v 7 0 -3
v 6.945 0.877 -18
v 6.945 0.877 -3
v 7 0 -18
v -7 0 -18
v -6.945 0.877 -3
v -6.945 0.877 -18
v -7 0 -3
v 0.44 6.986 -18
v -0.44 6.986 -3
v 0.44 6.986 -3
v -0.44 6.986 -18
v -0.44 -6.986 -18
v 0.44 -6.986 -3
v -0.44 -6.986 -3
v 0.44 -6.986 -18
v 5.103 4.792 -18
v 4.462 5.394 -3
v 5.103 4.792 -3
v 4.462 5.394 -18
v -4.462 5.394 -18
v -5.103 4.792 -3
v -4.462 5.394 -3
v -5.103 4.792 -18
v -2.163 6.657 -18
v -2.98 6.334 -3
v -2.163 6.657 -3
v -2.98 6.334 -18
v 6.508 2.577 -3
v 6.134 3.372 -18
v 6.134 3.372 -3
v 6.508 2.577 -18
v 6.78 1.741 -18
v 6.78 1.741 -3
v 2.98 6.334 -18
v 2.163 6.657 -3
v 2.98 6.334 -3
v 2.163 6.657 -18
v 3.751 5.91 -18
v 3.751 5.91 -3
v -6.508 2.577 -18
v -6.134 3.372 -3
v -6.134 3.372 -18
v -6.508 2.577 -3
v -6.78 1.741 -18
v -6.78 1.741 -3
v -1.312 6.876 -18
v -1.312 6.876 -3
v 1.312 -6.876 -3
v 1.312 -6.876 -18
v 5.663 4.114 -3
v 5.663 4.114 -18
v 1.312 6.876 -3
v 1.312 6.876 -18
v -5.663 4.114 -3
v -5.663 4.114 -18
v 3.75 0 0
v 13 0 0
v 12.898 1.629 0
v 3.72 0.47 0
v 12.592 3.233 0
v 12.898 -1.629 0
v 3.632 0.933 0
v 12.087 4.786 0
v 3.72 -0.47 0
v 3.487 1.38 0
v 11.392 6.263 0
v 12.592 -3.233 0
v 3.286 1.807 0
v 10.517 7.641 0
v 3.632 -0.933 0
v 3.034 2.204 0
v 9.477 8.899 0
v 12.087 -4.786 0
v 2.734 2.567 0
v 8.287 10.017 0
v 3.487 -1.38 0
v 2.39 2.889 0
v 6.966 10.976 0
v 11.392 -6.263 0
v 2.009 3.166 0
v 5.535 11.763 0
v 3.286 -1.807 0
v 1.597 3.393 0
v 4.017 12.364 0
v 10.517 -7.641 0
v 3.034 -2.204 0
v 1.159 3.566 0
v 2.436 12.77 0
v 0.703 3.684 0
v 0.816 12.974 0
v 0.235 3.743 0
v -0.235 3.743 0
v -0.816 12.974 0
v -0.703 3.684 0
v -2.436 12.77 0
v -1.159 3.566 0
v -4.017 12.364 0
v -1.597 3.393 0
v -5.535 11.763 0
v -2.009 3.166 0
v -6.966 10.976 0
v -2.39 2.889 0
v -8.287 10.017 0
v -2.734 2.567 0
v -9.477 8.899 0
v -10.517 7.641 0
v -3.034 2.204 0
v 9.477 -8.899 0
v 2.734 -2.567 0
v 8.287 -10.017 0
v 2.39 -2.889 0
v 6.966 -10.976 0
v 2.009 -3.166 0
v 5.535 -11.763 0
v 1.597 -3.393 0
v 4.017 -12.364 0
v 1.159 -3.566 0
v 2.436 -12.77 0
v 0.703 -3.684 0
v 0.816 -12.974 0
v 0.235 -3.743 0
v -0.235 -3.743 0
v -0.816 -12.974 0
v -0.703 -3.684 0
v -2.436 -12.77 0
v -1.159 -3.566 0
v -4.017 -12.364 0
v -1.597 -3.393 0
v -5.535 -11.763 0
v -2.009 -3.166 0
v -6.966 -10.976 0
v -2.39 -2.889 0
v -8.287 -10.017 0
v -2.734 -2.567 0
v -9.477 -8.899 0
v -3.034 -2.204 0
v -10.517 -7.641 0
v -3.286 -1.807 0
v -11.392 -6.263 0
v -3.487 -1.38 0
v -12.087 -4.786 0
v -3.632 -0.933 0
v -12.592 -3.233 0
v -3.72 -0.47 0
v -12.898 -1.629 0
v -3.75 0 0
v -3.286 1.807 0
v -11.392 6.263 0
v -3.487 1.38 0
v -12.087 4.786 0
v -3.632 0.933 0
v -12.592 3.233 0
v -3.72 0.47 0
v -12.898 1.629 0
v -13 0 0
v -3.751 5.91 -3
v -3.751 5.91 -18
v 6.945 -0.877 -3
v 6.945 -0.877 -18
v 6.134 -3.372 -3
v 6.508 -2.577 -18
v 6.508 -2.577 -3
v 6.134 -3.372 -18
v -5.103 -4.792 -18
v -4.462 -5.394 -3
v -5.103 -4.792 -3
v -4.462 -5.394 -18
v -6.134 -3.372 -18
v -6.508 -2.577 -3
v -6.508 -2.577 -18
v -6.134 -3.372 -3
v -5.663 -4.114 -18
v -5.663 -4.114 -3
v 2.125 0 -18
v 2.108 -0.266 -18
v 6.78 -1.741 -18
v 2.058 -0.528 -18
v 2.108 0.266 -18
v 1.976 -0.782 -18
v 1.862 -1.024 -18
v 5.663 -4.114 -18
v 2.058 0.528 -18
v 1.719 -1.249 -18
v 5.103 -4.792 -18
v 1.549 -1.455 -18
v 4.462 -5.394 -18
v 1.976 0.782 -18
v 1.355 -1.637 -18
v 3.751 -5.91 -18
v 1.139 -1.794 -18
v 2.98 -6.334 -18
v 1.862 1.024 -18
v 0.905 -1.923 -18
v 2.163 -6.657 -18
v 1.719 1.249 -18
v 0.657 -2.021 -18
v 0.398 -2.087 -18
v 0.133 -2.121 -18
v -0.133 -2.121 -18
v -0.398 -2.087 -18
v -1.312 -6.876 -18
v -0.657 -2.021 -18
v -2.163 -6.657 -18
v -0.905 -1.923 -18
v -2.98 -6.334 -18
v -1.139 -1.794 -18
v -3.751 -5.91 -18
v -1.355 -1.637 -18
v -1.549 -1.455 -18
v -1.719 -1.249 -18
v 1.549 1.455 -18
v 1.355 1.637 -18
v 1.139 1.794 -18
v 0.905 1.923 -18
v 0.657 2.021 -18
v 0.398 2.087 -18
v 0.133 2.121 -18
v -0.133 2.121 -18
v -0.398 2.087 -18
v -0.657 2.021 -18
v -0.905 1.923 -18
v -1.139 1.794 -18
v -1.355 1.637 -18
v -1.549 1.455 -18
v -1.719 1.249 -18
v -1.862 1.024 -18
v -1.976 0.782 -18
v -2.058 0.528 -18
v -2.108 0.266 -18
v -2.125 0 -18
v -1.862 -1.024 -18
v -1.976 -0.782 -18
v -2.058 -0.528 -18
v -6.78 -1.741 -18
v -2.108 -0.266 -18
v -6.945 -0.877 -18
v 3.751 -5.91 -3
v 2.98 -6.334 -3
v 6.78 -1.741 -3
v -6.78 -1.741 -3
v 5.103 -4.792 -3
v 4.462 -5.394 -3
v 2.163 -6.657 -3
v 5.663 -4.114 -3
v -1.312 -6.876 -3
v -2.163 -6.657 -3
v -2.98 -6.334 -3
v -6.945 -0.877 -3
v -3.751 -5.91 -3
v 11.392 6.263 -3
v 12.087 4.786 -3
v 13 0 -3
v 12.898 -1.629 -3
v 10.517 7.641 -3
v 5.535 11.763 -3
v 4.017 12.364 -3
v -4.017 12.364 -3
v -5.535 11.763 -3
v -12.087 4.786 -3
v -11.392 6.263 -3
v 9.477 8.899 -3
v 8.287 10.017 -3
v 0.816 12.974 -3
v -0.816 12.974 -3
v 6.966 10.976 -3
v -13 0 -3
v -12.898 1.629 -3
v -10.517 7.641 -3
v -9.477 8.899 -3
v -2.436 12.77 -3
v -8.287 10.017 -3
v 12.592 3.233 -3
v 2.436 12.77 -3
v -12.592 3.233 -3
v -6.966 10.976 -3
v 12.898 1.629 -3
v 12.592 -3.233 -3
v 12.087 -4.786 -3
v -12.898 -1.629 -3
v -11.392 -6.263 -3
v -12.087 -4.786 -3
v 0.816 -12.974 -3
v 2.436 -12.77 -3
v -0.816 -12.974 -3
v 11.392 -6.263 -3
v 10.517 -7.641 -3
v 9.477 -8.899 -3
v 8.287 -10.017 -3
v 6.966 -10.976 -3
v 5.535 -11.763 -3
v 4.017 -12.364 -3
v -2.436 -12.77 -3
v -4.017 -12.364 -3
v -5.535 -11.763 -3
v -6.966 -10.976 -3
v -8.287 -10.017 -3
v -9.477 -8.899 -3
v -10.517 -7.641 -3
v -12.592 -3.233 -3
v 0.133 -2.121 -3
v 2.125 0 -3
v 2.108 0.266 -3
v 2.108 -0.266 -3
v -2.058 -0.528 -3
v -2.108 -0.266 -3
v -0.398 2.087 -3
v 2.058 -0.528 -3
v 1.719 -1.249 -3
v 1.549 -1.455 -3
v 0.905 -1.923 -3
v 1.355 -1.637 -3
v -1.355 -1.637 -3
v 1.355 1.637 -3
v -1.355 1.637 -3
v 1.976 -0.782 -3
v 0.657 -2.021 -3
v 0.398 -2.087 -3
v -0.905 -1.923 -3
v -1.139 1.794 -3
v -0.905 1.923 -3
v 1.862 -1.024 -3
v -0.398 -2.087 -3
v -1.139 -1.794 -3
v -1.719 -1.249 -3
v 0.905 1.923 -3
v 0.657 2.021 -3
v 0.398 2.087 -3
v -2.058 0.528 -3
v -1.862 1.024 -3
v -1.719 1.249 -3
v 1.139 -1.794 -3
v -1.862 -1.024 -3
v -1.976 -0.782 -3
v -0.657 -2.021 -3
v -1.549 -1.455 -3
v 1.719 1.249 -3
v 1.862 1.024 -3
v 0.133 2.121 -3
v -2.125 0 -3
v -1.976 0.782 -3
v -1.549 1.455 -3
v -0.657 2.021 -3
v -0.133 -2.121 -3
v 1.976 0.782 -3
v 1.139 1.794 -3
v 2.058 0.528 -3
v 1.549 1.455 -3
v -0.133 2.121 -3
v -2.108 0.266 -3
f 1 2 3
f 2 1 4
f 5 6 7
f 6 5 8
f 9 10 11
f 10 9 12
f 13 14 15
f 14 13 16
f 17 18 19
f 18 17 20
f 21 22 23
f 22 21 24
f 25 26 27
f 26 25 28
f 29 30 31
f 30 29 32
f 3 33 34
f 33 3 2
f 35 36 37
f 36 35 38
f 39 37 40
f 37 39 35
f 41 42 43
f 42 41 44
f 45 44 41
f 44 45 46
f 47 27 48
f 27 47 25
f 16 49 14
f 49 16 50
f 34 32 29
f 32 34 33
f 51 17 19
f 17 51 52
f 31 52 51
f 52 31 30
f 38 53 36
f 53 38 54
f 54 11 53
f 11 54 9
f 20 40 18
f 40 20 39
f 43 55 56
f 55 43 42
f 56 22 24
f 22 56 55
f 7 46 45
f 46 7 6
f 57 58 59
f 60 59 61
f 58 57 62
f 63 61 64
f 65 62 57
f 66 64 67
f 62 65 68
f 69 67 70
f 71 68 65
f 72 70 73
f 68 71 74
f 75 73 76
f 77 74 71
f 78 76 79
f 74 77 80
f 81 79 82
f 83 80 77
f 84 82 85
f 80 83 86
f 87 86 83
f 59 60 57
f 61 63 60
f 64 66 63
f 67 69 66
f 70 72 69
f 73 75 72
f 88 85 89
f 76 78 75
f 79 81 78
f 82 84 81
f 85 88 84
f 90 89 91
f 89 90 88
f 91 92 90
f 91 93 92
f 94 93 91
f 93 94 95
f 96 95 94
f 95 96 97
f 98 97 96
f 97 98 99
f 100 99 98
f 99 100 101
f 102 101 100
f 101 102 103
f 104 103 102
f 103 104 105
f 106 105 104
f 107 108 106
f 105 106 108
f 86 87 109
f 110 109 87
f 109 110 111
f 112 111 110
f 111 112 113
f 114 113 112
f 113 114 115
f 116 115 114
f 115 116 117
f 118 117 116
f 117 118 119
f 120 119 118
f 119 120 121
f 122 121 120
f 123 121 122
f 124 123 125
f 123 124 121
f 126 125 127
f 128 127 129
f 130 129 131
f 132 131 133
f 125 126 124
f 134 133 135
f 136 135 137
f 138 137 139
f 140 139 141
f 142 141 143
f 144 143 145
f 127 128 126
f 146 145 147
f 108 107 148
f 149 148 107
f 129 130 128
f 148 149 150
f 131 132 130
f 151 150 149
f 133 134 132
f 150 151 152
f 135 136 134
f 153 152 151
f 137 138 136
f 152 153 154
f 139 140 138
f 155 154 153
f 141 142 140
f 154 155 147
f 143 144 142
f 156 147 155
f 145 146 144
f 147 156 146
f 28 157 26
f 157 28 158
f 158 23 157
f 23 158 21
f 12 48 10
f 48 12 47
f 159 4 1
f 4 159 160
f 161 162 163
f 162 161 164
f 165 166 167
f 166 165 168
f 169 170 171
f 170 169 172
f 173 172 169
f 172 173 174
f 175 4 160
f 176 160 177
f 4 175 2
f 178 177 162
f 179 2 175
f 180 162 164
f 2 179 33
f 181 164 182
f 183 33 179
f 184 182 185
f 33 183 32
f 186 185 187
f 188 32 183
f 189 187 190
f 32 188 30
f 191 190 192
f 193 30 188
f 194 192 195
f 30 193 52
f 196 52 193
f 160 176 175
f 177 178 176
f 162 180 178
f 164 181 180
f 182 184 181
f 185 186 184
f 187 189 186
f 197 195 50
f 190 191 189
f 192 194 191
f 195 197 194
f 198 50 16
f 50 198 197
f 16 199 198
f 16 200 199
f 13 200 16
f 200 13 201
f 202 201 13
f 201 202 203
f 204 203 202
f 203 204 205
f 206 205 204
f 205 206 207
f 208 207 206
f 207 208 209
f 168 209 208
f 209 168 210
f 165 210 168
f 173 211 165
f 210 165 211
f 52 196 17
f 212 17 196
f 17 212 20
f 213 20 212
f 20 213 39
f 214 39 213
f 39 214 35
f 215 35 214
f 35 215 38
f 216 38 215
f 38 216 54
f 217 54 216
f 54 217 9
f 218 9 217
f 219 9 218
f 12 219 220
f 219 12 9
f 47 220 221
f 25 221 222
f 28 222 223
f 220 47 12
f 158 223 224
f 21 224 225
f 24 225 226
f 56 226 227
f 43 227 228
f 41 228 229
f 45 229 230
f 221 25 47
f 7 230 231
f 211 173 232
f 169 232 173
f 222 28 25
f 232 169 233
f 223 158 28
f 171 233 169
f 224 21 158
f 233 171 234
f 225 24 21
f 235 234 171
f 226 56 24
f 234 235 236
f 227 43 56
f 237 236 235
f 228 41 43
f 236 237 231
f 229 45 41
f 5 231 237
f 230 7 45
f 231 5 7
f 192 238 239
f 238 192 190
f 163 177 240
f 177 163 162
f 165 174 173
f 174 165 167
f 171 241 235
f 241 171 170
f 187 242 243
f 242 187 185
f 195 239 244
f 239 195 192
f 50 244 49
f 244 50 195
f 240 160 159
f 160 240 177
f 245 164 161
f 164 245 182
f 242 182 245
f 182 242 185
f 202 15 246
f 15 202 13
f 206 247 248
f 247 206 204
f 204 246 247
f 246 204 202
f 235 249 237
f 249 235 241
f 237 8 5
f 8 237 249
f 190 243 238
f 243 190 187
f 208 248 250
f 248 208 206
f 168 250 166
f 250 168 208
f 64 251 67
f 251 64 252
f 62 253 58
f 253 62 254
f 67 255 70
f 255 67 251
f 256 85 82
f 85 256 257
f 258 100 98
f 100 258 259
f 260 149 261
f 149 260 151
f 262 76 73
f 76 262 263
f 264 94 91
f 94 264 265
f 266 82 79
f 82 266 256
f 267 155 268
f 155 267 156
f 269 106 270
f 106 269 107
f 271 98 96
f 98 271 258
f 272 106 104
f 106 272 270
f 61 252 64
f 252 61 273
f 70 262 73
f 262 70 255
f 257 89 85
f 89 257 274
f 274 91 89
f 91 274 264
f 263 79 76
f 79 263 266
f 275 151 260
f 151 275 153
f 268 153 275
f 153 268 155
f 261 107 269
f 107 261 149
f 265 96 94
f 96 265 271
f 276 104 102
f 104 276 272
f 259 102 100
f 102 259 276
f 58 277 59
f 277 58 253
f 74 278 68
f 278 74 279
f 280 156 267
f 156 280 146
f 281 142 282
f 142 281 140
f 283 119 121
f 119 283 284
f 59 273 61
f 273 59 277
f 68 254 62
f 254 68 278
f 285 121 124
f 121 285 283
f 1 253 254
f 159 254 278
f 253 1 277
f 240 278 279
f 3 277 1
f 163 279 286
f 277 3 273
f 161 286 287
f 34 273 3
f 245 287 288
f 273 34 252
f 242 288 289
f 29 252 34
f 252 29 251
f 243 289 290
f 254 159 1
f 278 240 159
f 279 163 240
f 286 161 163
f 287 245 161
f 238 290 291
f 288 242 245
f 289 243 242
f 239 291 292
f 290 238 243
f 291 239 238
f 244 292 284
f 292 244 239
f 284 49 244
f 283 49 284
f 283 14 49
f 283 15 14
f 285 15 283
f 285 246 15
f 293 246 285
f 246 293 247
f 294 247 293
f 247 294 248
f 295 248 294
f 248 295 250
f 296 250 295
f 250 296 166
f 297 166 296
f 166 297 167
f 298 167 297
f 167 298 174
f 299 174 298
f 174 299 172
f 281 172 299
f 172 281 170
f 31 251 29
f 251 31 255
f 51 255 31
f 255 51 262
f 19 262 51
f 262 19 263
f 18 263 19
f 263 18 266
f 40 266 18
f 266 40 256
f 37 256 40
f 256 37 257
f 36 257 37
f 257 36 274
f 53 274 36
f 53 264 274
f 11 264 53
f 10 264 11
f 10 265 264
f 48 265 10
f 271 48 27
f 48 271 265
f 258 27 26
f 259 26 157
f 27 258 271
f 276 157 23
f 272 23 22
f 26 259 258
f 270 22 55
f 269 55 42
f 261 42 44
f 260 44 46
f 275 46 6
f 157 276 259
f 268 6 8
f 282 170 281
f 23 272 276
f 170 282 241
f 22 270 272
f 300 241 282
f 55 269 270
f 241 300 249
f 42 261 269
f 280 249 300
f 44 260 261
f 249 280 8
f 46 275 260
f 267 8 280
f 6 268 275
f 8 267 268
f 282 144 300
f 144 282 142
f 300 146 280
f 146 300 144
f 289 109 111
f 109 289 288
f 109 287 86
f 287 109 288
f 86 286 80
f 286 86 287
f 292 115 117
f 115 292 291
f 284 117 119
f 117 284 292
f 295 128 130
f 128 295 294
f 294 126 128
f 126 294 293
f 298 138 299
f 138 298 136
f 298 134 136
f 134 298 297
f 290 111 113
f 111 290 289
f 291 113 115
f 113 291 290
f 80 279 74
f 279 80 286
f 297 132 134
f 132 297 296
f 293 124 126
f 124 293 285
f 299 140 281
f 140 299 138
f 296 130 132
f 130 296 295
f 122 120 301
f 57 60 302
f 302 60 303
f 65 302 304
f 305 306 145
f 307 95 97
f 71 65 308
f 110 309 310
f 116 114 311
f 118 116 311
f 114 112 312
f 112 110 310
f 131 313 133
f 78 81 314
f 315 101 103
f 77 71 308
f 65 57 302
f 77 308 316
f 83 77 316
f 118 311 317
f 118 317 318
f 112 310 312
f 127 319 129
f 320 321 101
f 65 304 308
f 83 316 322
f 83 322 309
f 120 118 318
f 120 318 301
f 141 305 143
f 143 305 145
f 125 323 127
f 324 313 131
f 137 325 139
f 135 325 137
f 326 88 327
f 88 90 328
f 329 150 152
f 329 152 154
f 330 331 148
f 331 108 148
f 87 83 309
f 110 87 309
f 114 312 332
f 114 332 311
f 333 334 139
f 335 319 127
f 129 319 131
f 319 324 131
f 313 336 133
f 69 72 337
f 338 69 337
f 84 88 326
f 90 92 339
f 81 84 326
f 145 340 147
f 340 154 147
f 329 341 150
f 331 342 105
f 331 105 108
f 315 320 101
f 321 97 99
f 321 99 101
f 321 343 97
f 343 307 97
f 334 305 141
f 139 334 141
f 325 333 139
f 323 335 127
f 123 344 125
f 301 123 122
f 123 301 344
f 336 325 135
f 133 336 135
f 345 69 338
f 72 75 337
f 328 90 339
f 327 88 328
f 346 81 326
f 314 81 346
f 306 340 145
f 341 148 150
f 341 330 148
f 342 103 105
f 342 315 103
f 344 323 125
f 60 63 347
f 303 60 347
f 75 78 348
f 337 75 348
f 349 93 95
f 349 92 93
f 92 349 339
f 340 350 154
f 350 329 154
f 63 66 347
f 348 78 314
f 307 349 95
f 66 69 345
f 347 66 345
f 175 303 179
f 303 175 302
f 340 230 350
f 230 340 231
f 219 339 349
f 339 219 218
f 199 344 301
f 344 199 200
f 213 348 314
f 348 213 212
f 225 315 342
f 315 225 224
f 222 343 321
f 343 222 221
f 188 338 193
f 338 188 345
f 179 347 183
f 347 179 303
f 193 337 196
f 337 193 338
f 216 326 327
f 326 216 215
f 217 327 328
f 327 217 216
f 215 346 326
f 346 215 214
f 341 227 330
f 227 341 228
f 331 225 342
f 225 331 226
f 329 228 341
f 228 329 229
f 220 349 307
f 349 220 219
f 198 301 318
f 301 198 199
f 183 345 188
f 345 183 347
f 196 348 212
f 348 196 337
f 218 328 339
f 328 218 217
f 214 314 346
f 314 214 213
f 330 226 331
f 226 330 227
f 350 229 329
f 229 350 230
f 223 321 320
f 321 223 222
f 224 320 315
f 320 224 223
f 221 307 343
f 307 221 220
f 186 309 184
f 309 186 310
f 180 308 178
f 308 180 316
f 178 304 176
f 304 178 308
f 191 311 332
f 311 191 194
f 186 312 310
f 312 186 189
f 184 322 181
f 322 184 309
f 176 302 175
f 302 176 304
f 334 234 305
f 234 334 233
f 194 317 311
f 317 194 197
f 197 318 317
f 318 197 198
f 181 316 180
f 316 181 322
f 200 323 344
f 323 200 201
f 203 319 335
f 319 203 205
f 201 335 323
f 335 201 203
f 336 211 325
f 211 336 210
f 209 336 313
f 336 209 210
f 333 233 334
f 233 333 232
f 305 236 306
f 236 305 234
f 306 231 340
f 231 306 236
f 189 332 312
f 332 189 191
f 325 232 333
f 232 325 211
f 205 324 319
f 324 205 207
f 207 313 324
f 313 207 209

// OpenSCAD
$fn = 50;


difference() {
	union() {
		translate(v = [0, 0, -18.0000000000]) {
			cylinder(h = 18, r = 7.0000000000);
		}
		translate(v = [0, 0, -3.0000000000]) {
			cylinder(h = 3, r = 13.0000000000);
		}
	}
	union() {
		translate(v = [0, 0, 0]) {
			rotate(a = [0, 0, 0]) {
				difference() {
					union() {
						#translate(v = [0, 0, -18.0000000000]) {
							cylinder(h = 18, r = 2.0000000000);
						}
						#translate(v = [0, 0, -3]) {
							cylinder(h = 3, r1 = 2.1250000000, r2 = 3.7500000000);
						}
						#translate(v = [0, 0, -18.0000000000]) {
							cylinder(h = 18, r = 2.1250000000);
						}
						#translate(v = [0, 0, -18.0000000000]) {
							cylinder(h = 18, r = 2.0000000000);
						}
					}
					union();
				}
			}
		}
	}
}
